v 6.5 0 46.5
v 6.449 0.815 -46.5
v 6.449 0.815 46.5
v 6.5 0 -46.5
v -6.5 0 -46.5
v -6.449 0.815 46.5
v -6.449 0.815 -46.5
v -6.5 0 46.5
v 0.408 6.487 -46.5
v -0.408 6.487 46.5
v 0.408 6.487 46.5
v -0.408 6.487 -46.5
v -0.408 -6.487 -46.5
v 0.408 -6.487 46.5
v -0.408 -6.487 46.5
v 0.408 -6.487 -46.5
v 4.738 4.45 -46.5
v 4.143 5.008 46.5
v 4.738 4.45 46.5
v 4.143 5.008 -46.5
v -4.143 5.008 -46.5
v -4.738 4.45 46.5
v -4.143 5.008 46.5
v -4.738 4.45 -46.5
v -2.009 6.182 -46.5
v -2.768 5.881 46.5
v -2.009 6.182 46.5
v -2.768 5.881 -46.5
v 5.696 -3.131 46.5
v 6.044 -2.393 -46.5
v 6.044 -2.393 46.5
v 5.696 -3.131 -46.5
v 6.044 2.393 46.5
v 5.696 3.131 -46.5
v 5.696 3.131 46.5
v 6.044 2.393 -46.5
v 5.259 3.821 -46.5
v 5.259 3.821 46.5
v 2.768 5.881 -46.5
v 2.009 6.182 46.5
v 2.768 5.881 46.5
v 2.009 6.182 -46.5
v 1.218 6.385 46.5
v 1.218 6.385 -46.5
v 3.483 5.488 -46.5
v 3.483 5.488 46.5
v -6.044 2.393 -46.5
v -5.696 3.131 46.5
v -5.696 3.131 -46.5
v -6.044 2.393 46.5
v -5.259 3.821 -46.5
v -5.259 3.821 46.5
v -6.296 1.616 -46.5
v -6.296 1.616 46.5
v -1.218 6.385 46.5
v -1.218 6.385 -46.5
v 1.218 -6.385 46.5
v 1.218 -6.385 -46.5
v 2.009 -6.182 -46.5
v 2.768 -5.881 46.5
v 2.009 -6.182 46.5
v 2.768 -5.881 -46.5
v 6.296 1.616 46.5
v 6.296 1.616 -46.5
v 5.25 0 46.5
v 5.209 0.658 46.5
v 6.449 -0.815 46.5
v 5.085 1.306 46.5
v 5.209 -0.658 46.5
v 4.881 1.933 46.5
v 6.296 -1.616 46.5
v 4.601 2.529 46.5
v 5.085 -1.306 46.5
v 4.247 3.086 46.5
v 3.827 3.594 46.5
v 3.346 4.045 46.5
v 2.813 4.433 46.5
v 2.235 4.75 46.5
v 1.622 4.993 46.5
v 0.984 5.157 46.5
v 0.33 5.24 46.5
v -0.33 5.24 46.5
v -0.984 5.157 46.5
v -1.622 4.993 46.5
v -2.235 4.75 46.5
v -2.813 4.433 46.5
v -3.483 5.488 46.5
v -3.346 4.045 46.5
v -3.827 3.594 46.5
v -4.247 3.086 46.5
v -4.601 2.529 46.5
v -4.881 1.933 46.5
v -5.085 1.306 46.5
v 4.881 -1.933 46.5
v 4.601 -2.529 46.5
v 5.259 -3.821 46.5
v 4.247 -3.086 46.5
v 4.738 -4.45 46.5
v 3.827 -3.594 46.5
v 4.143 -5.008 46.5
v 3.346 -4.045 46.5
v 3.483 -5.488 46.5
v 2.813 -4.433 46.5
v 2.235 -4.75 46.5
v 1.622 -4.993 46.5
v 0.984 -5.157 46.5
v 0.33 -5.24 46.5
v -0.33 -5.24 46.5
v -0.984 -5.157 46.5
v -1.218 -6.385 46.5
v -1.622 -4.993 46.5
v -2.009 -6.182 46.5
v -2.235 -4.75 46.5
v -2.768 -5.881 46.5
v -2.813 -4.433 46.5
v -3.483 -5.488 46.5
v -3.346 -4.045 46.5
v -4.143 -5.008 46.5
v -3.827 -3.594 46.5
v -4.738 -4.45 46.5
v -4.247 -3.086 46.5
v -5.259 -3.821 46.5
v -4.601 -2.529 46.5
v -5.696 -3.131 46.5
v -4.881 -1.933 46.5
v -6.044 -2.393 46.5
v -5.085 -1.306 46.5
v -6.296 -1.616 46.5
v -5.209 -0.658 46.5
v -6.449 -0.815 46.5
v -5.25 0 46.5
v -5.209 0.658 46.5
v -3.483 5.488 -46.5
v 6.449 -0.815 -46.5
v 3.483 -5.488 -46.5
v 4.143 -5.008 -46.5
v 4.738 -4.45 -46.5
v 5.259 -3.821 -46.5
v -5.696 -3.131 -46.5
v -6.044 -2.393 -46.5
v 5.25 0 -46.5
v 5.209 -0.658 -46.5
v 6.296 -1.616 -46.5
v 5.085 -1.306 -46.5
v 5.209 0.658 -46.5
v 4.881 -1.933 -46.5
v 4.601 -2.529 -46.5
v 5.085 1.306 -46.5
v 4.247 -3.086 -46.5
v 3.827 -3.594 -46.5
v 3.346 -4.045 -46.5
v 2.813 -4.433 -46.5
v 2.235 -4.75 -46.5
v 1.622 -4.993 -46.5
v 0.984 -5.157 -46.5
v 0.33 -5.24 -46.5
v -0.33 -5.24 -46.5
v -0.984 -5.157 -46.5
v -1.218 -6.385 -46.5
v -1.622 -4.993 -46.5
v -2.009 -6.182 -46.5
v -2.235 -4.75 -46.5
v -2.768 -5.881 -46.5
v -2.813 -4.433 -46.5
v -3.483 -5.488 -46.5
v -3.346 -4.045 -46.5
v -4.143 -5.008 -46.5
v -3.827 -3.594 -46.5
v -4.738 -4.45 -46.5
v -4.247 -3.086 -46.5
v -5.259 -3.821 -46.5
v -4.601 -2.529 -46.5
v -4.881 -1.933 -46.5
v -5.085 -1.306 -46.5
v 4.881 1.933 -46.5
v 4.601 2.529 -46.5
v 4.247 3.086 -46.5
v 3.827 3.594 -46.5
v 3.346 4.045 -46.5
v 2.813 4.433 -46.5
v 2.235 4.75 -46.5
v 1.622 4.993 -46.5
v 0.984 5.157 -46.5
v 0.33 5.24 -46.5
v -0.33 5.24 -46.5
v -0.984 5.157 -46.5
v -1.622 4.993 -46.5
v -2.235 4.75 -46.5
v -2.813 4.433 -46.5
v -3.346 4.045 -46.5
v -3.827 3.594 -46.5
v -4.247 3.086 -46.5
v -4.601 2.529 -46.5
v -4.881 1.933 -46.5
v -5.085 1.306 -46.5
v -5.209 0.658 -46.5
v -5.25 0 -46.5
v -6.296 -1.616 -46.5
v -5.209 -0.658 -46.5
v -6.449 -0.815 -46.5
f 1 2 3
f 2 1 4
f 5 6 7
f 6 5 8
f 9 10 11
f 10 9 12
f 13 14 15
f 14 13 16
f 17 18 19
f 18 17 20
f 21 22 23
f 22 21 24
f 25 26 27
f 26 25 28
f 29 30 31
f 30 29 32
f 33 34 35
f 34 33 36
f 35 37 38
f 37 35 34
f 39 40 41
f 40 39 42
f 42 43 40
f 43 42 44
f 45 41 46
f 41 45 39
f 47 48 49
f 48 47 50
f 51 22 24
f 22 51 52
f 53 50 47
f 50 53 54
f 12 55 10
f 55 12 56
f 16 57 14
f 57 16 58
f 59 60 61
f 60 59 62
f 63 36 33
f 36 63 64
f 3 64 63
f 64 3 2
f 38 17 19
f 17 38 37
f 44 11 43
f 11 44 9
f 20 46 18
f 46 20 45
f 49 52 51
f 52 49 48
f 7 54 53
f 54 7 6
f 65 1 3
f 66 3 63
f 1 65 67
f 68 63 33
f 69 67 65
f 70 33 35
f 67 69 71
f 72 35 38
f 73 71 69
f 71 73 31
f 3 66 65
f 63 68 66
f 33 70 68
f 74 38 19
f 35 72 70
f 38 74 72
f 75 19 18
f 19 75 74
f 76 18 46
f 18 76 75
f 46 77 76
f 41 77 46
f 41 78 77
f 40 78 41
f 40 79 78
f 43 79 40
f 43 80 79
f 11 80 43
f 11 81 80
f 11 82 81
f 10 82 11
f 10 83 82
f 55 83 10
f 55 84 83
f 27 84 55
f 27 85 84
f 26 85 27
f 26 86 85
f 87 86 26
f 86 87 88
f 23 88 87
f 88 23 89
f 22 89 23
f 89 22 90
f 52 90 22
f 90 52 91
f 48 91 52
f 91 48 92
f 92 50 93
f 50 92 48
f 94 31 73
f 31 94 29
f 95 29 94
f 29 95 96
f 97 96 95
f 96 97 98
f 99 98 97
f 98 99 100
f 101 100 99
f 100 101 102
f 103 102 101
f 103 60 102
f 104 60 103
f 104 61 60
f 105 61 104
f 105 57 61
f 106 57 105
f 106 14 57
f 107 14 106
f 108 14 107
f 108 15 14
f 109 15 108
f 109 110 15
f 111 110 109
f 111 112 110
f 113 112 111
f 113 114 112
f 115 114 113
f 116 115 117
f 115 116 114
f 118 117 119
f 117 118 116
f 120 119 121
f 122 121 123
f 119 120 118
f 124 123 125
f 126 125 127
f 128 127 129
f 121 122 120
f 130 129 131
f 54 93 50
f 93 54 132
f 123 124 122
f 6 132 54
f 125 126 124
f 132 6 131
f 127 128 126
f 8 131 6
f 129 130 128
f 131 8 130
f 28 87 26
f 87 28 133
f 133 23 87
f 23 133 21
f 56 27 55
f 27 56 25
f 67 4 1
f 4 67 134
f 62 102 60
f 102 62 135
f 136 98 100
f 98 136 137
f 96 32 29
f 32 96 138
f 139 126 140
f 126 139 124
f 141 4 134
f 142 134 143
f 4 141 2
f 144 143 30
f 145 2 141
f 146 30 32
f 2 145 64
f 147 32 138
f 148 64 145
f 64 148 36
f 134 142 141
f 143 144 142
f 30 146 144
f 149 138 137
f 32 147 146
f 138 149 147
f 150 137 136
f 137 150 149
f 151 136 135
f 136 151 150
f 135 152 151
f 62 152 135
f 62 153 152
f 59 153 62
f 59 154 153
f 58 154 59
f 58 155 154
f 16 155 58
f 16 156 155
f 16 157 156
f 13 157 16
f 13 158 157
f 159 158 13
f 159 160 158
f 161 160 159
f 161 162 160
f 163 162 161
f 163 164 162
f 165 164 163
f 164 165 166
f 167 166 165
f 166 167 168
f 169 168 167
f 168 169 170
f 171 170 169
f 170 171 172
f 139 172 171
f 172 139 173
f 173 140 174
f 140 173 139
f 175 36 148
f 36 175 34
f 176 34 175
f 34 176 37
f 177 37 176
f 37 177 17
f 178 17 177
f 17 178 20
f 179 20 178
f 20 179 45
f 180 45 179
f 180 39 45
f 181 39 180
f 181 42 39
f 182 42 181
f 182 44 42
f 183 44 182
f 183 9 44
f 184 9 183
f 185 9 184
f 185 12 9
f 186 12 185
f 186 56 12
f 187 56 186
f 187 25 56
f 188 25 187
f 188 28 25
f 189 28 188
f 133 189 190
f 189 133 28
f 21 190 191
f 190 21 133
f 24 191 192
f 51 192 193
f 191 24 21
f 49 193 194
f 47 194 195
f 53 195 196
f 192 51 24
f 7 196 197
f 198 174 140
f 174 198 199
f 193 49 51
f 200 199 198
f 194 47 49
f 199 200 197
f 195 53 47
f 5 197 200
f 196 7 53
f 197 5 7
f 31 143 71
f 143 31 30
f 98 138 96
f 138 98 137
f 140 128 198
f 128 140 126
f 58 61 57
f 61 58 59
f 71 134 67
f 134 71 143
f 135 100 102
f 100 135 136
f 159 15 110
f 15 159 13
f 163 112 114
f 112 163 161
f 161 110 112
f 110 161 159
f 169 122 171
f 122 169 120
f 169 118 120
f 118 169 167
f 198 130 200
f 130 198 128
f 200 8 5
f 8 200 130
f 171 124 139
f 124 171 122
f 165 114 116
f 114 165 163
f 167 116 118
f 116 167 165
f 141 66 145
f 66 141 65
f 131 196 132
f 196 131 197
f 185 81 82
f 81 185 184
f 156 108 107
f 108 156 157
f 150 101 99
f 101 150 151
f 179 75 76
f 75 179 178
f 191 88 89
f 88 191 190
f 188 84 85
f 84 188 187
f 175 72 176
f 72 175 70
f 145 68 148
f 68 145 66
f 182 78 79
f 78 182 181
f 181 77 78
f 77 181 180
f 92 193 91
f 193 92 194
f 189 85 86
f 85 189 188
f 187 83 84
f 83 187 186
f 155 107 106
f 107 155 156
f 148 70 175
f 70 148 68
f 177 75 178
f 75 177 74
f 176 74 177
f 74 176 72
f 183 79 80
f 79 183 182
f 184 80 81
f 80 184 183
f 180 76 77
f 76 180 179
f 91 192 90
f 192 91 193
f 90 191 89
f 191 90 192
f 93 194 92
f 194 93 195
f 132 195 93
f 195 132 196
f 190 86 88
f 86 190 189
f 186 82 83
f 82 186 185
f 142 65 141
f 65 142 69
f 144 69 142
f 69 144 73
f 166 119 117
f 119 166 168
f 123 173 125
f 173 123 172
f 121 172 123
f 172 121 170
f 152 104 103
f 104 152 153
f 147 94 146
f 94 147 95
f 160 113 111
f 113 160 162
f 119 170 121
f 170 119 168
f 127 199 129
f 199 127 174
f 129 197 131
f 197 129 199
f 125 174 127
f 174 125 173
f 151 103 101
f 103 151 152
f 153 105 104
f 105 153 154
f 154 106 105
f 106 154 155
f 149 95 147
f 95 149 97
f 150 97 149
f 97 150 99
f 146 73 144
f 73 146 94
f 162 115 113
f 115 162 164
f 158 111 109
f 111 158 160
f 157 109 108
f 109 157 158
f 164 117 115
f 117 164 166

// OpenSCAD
$fn = 50;


difference() {
	union() {
		translate(v = [0, 0, -46.5000000000]) {
			cylinder(h = 93, r = 6.5000000000);
		}
	}
	union() {
		translate(v = [0, 0, -100.0000000000]) {
			cylinder(h = 200, r = 5.2500000000);
		}
	}
}
